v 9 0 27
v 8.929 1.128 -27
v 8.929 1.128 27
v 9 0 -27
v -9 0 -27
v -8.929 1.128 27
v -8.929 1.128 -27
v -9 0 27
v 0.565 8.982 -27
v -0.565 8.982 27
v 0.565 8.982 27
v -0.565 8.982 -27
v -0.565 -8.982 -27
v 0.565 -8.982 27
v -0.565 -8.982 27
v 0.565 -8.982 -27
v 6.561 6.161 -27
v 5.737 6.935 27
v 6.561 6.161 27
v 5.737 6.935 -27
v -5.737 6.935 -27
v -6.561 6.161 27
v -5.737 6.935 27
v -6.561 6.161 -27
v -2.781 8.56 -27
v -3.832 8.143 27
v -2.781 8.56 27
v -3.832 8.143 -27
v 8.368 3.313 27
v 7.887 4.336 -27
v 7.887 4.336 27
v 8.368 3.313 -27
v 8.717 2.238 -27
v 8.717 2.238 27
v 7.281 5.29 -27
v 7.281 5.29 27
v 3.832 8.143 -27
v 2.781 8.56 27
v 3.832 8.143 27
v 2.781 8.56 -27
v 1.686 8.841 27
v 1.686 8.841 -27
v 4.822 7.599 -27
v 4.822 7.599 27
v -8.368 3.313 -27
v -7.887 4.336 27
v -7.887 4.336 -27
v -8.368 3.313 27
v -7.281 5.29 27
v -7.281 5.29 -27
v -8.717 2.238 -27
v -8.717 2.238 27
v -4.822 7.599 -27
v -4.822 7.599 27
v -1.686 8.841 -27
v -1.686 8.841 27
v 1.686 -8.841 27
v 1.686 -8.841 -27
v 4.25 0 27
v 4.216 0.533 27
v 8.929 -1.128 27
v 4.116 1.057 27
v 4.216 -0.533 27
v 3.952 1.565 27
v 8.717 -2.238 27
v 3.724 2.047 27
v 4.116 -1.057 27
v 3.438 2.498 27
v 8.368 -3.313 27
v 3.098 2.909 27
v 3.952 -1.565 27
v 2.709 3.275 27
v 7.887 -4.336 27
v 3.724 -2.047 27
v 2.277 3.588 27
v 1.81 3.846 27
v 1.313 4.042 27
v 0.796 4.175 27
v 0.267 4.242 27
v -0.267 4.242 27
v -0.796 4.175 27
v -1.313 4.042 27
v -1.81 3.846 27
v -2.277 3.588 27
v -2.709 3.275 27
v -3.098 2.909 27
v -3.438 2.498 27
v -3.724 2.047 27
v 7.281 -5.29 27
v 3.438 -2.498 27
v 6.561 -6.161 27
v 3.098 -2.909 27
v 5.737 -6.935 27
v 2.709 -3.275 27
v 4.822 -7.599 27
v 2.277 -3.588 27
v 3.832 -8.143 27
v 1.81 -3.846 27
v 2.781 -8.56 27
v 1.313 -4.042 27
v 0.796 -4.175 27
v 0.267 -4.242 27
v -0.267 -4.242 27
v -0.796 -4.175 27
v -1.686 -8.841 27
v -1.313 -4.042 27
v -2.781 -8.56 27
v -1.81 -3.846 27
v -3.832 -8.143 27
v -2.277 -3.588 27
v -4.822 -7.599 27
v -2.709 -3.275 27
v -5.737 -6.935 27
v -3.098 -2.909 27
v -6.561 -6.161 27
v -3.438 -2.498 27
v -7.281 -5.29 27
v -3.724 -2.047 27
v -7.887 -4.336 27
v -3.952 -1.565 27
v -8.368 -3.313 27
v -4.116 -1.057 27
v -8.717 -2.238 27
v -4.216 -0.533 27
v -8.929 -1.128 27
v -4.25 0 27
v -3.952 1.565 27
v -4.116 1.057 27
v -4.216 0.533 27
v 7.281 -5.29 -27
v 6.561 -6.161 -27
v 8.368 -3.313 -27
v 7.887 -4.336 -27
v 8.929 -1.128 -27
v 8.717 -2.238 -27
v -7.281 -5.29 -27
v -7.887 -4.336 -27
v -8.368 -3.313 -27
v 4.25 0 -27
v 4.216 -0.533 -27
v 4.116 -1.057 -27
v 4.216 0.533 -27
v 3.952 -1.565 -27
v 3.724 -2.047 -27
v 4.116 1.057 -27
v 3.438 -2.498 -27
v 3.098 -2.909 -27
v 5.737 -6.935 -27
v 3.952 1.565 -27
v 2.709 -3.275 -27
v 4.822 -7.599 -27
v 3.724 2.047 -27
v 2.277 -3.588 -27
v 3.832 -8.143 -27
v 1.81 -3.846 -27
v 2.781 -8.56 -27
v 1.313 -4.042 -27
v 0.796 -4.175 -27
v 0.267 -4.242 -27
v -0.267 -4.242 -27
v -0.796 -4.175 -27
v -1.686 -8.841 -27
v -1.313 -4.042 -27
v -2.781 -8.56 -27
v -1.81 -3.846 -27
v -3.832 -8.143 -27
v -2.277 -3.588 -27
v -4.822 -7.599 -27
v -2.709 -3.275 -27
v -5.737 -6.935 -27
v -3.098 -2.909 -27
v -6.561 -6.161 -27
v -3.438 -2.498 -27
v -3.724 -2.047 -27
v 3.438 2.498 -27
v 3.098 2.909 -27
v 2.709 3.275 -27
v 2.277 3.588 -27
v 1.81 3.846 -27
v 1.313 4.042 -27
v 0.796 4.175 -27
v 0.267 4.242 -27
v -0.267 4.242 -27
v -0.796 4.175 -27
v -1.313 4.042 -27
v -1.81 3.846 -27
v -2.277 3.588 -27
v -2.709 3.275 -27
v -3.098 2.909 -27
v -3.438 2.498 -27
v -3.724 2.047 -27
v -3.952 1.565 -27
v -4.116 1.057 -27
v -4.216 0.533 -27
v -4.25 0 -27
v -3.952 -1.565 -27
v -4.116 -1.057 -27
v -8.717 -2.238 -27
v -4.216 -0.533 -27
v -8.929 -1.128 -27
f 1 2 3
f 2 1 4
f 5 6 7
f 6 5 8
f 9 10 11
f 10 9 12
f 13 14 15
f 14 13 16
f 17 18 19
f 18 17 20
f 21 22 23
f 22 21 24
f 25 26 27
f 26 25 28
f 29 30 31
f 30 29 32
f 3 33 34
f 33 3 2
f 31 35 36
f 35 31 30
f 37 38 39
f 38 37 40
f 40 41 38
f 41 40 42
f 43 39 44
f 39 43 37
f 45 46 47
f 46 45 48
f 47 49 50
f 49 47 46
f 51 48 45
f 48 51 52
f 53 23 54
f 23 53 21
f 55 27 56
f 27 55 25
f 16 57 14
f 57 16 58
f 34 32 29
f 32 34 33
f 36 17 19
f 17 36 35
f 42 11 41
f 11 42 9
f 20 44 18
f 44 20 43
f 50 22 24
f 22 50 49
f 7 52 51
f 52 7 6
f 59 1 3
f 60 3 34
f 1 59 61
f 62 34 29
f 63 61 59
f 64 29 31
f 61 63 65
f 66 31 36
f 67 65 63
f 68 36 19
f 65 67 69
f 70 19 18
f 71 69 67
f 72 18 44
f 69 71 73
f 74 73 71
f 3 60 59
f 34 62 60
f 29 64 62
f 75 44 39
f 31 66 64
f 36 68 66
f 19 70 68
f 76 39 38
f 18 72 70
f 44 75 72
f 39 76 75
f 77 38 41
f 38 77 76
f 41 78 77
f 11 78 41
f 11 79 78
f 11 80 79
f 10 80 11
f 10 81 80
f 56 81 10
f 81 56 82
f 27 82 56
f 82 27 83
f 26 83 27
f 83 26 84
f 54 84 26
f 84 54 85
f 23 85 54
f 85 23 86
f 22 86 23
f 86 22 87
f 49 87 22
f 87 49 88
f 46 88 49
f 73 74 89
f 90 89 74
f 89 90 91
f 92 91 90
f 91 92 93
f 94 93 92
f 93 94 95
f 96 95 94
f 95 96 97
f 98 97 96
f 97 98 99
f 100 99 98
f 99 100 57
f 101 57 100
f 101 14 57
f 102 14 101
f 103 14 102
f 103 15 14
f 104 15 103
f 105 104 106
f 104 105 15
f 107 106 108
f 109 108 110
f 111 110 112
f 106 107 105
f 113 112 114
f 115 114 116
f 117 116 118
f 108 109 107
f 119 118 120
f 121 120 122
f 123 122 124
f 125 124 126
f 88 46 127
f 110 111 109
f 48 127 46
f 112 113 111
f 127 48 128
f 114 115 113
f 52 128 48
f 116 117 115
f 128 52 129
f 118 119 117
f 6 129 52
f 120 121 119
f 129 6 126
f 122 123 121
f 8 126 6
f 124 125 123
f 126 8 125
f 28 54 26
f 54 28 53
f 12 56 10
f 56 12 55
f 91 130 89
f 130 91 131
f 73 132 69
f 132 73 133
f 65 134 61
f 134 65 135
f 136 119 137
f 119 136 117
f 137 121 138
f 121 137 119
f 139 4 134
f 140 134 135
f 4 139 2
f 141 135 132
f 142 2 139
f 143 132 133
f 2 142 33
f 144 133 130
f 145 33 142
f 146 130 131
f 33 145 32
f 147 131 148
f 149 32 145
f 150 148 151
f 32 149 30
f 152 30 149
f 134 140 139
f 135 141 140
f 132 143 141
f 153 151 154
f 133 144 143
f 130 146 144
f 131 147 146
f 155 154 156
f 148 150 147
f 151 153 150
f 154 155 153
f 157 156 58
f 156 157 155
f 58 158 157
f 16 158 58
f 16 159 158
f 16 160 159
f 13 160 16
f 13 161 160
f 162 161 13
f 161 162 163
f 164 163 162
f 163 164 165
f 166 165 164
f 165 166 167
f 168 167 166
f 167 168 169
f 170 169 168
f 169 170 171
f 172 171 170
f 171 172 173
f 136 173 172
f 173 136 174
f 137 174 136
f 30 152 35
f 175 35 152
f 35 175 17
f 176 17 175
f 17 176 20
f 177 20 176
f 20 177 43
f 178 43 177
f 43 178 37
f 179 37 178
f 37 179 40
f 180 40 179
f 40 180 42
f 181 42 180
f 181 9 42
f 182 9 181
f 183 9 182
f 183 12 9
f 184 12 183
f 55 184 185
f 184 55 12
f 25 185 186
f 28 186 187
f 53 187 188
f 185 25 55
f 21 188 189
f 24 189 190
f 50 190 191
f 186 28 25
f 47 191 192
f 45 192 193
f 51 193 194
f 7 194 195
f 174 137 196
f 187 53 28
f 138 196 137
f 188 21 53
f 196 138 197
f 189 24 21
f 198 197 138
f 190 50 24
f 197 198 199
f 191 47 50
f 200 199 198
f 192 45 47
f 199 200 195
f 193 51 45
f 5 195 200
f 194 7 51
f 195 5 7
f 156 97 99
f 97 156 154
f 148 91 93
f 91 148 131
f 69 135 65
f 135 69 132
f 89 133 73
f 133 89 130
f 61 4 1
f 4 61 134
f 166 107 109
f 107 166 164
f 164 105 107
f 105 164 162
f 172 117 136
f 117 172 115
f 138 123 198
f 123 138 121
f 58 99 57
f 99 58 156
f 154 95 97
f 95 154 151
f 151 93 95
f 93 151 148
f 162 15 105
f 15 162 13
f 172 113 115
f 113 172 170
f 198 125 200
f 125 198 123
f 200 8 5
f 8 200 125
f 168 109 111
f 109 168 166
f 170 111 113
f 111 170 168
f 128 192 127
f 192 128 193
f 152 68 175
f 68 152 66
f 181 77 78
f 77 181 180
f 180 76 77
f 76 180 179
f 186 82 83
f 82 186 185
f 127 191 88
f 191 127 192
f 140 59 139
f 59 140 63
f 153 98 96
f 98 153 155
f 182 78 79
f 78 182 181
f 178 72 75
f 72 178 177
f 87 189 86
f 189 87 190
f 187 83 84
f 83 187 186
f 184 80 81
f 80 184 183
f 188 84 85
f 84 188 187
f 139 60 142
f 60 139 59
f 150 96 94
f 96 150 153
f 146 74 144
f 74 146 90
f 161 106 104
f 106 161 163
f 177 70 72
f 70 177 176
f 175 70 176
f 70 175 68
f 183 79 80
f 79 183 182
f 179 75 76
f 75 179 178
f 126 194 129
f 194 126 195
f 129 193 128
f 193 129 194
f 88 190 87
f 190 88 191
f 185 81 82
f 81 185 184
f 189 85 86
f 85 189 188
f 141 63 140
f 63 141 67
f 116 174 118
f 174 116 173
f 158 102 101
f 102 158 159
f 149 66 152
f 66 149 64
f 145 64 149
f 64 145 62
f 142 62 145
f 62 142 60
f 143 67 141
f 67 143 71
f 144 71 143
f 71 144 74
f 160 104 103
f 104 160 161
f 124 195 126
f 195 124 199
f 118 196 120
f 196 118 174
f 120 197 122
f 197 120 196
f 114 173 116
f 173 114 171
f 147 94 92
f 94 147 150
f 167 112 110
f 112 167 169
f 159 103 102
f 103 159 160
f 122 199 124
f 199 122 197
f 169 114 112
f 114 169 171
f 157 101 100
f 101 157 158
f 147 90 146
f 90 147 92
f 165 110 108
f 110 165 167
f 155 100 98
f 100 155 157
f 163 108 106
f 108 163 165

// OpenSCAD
$fn = 50;


difference() {
	union() {
		translate(v = [0, 0, -27.0000000000]) {
			cylinder(h = 54, r = 9.0000000000);
		}
	}
	union() {
		translate(v = [0, 0, -100.0000000000]) {
			cylinder(h = 200, r = 4.2500000000);
		}
	}
}
